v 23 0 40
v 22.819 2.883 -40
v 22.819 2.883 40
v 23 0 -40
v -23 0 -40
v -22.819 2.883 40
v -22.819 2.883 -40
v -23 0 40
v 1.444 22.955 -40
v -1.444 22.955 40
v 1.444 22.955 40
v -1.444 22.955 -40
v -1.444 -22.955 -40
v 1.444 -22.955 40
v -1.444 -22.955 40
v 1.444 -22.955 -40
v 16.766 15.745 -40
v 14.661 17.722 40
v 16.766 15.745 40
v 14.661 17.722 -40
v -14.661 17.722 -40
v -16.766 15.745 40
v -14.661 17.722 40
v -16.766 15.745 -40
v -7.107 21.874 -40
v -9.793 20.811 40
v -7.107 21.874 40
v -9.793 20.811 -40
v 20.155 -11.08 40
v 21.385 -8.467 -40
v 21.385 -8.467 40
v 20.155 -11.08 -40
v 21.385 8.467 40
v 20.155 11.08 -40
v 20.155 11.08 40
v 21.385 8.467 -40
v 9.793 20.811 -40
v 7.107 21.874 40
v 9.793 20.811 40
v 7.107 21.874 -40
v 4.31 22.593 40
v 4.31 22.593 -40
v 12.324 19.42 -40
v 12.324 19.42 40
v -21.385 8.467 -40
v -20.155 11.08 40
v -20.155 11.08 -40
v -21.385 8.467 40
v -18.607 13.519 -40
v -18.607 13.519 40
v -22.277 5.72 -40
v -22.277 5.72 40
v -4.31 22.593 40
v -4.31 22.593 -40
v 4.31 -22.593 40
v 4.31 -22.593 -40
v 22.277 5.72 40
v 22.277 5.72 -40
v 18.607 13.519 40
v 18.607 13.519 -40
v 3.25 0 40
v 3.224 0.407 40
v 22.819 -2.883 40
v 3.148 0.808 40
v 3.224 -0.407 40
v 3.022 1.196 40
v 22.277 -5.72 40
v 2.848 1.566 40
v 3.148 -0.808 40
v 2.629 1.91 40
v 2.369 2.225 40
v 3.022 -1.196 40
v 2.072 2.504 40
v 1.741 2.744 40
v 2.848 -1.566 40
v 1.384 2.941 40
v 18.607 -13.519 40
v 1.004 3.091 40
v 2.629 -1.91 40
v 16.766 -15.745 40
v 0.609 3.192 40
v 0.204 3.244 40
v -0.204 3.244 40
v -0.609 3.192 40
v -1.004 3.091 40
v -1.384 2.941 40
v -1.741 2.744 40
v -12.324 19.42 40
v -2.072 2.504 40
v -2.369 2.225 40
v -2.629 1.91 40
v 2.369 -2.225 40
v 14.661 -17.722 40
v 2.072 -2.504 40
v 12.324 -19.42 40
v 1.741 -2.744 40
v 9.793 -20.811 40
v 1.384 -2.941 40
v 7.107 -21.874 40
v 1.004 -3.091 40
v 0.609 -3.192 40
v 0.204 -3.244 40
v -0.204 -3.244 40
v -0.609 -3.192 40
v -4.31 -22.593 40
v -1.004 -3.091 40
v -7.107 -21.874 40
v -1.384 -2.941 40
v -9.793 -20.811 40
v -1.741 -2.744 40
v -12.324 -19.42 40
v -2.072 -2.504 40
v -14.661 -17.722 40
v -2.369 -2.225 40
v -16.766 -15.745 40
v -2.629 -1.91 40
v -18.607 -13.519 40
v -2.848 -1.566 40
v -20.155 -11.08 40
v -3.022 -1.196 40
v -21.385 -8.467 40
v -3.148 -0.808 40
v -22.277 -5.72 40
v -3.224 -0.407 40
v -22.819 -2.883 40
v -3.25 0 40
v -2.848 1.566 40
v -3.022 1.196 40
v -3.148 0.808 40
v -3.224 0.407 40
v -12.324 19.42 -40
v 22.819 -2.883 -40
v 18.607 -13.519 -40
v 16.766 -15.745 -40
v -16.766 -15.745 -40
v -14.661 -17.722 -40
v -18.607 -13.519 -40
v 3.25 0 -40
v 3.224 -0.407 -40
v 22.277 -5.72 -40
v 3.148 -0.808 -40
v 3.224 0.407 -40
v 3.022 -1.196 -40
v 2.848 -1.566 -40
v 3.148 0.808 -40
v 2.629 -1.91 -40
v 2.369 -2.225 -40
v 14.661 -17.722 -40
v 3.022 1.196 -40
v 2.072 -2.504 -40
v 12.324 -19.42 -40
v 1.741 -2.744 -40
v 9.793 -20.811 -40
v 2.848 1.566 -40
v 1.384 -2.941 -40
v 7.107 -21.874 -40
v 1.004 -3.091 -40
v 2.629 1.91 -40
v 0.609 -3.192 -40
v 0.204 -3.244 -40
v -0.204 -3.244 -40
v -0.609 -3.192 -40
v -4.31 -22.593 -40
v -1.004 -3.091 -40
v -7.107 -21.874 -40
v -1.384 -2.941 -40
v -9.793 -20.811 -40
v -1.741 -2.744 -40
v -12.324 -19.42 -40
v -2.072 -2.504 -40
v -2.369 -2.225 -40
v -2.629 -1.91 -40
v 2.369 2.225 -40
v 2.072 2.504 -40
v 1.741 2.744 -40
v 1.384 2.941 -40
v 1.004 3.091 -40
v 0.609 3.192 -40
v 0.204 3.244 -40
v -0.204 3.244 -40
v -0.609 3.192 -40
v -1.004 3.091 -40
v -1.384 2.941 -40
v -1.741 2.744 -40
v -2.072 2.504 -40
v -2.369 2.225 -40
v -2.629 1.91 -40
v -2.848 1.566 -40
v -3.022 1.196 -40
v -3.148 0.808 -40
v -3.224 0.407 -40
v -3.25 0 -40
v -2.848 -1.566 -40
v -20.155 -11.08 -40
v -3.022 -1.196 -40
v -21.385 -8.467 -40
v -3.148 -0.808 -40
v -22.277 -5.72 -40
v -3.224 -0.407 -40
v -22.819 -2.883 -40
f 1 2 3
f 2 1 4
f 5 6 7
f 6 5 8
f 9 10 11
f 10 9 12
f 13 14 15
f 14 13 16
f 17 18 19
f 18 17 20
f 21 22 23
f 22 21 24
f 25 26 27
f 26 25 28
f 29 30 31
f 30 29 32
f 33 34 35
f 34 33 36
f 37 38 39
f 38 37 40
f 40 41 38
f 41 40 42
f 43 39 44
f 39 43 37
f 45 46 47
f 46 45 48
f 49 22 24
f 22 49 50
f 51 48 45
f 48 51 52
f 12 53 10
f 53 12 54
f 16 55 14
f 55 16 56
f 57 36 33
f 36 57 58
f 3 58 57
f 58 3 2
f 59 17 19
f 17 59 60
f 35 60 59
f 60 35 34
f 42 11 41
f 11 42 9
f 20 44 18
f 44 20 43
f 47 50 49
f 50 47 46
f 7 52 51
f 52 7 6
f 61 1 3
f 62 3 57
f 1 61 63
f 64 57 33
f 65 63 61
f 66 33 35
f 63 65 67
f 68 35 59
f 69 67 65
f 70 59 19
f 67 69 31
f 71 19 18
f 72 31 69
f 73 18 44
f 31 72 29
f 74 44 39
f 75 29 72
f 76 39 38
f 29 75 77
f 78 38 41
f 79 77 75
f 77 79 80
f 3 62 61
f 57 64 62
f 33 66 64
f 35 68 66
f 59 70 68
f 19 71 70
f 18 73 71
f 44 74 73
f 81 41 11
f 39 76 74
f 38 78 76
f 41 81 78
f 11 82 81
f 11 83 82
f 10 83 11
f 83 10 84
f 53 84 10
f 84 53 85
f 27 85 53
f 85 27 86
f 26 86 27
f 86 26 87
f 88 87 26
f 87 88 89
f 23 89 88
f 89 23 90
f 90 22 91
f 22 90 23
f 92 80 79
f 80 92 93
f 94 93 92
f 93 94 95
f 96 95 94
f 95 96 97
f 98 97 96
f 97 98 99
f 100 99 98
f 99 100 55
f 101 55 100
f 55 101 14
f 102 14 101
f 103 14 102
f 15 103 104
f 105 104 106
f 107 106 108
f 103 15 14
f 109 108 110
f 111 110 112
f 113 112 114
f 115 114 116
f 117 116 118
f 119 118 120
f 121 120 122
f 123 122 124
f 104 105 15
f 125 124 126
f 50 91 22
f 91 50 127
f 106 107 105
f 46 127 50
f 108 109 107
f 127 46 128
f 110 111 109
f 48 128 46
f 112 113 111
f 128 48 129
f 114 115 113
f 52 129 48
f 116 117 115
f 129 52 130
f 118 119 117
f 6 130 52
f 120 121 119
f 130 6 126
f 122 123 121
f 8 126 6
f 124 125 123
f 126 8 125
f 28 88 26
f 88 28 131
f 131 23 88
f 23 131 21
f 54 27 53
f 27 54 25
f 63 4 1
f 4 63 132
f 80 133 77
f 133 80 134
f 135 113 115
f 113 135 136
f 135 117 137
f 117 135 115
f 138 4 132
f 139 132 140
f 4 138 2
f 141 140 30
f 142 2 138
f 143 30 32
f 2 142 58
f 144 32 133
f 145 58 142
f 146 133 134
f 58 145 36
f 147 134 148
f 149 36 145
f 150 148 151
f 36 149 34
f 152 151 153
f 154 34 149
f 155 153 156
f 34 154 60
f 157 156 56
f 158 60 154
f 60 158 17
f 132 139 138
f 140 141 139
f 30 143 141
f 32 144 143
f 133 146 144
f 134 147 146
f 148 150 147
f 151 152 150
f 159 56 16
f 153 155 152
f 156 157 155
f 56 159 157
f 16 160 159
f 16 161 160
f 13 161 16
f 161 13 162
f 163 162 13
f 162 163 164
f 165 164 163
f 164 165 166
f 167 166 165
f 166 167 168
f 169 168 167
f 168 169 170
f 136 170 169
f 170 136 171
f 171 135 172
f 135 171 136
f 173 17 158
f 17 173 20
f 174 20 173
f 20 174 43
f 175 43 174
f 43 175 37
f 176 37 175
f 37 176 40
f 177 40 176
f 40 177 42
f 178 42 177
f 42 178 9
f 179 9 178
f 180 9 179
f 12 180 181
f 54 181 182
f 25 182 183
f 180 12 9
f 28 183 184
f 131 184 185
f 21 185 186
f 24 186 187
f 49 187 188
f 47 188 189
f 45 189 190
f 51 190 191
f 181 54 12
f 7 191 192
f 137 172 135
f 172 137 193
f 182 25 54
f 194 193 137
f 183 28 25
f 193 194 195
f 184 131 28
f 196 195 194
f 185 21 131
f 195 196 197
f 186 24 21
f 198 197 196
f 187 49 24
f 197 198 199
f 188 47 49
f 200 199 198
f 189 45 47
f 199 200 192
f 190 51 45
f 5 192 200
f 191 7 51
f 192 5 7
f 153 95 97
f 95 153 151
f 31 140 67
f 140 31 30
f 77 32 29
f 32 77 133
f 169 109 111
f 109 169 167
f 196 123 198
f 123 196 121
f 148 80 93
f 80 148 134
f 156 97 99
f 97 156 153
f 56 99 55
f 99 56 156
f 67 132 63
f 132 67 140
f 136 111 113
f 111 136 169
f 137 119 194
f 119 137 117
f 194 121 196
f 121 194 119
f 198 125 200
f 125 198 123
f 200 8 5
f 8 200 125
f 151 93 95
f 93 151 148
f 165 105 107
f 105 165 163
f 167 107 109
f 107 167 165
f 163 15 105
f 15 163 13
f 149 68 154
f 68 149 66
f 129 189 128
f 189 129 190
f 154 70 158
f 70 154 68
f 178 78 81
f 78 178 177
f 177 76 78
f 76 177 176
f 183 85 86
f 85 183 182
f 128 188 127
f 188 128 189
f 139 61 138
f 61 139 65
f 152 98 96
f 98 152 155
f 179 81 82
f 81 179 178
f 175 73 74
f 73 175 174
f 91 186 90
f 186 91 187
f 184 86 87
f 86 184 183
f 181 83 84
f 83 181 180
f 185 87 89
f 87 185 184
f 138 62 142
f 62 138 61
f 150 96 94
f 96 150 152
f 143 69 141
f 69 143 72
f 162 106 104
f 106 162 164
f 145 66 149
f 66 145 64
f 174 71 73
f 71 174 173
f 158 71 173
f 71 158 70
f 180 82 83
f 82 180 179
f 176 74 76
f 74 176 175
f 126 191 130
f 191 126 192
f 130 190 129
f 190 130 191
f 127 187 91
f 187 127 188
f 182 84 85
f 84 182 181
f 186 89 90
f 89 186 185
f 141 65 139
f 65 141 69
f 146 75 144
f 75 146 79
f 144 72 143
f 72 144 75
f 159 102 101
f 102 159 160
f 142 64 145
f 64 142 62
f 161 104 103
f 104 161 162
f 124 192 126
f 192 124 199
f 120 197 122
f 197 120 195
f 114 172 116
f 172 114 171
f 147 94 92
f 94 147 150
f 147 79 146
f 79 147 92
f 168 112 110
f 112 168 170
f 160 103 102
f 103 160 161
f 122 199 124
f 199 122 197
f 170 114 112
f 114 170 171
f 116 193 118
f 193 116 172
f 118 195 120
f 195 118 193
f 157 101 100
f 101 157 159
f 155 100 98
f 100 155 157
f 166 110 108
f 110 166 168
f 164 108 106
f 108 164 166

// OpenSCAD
$fn = 50;


difference() {
	union() {
		translate(v = [0, 0, -40.0000000000]) {
			cylinder(h = 80, r = 23.0000000000);
		}
	}
	union() {
		translate(v = [0, 0, -100.0000000000]) {
			cylinder(h = 200, r = 3.2500000000);
		}
	}
}
